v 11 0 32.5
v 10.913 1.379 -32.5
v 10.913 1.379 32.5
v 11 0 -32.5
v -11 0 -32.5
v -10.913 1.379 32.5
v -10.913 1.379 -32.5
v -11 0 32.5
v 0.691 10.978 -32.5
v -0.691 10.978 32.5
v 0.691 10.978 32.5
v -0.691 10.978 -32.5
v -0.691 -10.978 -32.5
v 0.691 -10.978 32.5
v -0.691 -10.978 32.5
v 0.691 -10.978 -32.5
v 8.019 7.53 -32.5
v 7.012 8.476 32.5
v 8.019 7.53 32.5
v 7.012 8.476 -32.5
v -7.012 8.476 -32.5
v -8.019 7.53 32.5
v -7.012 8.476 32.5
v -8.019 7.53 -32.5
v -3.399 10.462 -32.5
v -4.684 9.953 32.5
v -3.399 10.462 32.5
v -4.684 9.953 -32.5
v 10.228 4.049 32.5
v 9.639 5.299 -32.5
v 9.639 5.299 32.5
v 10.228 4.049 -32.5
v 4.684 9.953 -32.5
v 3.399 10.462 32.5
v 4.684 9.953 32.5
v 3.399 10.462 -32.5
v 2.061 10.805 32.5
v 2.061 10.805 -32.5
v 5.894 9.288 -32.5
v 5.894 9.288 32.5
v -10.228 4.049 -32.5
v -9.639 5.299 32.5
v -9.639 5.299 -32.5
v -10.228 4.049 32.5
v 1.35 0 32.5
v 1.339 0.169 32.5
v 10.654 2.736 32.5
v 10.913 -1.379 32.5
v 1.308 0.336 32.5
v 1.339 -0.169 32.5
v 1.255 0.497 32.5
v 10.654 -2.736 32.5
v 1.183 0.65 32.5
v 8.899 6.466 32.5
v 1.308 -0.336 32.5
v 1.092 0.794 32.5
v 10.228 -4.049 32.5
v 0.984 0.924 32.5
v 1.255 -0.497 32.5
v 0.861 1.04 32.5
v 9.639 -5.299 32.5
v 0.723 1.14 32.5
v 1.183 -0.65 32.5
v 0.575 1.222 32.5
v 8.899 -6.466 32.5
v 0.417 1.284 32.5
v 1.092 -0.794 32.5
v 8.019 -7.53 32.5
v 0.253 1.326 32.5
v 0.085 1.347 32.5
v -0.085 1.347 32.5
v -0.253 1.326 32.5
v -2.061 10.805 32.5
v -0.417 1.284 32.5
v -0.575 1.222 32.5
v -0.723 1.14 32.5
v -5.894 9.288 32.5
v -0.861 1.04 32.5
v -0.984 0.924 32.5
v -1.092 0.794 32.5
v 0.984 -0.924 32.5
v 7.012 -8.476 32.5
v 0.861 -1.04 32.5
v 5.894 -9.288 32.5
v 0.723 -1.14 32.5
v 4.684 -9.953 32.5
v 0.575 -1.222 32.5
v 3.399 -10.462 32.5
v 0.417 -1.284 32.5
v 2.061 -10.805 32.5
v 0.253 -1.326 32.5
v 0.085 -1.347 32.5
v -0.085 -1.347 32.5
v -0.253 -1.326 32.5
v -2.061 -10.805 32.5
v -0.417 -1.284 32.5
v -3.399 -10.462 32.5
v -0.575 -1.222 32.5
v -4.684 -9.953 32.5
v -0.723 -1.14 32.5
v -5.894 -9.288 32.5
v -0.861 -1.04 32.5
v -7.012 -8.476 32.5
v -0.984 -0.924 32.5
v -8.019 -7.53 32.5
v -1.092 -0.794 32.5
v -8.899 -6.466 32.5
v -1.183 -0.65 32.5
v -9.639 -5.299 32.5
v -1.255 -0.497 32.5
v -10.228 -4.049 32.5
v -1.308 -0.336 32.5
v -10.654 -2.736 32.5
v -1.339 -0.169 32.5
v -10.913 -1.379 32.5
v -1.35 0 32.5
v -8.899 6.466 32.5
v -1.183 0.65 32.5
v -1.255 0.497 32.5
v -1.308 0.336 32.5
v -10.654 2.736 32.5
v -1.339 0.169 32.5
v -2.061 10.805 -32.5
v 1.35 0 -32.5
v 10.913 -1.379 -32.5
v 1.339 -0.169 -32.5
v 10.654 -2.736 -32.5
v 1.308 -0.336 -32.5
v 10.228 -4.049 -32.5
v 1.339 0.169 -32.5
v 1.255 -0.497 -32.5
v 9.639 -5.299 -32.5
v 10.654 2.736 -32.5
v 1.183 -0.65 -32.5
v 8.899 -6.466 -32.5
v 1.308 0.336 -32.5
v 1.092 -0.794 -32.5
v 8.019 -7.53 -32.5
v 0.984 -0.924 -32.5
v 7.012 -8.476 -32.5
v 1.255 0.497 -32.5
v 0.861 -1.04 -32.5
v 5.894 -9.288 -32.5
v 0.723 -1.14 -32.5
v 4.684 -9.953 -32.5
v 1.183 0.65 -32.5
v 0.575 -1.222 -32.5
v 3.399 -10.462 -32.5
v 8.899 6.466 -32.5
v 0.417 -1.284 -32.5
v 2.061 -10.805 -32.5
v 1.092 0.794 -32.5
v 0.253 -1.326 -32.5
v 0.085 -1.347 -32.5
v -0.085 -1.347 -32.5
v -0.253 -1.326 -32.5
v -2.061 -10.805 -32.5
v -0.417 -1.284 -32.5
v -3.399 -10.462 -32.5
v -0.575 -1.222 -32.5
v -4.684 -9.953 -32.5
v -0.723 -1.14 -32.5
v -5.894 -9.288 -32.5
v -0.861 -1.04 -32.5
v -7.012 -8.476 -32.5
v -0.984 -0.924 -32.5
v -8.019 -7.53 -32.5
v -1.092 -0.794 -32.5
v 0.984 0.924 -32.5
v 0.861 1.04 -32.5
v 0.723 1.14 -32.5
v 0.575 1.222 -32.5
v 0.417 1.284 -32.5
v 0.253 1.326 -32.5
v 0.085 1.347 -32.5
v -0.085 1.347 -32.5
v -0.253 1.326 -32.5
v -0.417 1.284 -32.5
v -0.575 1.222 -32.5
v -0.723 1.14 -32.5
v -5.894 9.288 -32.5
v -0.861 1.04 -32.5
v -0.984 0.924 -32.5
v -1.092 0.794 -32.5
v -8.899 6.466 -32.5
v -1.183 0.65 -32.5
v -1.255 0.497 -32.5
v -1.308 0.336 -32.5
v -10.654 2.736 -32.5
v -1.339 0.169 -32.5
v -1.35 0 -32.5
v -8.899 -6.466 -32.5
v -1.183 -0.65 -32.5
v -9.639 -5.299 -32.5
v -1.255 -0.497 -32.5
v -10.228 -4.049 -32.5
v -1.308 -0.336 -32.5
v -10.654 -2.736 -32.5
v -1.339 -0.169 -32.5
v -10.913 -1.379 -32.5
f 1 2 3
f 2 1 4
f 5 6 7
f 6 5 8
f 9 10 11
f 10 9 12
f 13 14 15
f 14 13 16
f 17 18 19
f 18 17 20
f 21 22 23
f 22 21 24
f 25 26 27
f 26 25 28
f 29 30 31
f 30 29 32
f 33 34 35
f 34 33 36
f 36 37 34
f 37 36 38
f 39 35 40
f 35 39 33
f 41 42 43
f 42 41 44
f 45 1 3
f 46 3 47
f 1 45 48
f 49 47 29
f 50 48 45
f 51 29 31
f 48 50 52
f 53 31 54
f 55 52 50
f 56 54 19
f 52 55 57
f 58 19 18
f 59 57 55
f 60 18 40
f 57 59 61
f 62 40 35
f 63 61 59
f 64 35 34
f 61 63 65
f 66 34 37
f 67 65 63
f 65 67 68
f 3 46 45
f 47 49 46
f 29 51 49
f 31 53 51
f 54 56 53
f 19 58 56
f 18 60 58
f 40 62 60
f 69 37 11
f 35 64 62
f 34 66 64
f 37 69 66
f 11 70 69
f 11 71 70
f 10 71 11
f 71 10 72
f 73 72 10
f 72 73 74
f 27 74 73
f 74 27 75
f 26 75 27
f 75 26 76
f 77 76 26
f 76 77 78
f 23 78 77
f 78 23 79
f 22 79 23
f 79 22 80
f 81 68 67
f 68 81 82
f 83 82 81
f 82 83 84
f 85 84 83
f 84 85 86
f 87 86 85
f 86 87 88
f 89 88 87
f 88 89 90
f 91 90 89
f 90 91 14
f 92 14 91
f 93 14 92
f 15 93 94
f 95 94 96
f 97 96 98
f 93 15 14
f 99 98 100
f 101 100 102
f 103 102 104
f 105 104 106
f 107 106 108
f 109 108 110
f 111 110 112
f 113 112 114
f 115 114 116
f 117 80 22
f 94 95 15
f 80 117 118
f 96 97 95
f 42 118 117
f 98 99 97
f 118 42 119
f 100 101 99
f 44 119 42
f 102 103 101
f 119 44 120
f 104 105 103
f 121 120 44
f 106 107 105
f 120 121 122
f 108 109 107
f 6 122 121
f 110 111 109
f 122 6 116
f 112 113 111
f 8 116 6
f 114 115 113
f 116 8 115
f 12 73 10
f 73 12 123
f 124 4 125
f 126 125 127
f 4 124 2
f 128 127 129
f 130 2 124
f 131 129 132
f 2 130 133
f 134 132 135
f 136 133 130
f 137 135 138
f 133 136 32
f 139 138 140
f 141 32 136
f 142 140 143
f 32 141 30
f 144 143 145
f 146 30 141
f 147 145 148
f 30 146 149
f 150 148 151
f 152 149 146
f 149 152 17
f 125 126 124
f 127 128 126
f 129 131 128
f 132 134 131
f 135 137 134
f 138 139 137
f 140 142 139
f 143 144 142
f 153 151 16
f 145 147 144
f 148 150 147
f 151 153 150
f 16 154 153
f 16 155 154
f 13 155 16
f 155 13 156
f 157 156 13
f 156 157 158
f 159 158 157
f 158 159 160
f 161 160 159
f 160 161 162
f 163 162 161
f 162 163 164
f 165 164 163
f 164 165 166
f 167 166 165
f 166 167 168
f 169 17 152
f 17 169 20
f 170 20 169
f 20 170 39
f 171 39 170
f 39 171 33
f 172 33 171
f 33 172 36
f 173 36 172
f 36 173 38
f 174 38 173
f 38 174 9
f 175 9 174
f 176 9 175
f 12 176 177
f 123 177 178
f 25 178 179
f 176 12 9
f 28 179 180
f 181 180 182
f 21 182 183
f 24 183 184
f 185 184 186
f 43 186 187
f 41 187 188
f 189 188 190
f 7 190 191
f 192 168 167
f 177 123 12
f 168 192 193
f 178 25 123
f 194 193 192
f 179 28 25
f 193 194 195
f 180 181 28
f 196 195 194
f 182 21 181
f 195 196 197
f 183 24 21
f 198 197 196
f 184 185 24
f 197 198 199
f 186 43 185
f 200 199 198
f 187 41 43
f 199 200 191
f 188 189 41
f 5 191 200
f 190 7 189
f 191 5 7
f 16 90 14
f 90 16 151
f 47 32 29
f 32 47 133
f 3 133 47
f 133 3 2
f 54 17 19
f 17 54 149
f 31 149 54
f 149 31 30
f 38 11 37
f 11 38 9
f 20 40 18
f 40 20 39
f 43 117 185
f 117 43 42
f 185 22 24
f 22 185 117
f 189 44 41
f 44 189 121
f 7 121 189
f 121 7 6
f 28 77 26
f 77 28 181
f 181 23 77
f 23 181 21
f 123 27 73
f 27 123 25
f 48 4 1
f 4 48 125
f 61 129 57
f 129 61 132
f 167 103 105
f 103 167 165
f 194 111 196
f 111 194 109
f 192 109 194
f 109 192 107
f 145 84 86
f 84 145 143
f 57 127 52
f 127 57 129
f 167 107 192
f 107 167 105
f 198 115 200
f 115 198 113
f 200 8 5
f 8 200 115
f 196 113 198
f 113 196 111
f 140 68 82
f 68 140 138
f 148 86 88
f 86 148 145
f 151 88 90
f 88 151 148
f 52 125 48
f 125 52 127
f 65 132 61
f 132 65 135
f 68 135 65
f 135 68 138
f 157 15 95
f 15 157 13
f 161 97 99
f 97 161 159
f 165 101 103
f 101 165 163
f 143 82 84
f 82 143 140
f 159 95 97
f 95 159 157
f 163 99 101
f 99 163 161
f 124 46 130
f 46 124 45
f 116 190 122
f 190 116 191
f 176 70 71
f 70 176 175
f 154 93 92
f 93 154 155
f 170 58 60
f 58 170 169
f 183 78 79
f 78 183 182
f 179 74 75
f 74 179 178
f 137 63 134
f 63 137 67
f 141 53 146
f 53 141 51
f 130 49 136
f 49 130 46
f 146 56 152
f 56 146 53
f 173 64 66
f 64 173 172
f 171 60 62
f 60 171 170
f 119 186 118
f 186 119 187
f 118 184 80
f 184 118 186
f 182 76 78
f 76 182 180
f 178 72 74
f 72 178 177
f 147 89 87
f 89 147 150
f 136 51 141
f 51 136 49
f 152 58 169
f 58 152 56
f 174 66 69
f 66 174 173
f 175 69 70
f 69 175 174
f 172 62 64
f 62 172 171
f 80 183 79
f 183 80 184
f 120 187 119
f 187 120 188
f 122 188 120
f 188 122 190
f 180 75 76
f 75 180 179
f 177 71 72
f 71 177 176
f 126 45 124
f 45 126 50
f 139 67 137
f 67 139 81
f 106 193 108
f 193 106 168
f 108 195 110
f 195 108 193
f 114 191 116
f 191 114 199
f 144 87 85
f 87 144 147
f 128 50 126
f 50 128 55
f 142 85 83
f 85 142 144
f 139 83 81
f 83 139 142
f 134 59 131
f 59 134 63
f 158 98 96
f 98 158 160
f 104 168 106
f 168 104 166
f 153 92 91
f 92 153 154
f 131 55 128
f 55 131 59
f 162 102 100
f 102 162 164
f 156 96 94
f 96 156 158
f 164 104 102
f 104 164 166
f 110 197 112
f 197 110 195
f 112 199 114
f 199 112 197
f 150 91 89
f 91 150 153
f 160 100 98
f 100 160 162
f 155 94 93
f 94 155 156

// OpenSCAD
$fn = 50;


difference() {
	union() {
		translate(v = [0, 0, -32.5000000000]) {
			cylinder(h = 65, r = 11.0000000000);
		}
	}
	union() {
		translate(v = [0, 0, -100.0000000000]) {
			cylinder(h = 200, r = 1.3500000000);
		}
	}
}
